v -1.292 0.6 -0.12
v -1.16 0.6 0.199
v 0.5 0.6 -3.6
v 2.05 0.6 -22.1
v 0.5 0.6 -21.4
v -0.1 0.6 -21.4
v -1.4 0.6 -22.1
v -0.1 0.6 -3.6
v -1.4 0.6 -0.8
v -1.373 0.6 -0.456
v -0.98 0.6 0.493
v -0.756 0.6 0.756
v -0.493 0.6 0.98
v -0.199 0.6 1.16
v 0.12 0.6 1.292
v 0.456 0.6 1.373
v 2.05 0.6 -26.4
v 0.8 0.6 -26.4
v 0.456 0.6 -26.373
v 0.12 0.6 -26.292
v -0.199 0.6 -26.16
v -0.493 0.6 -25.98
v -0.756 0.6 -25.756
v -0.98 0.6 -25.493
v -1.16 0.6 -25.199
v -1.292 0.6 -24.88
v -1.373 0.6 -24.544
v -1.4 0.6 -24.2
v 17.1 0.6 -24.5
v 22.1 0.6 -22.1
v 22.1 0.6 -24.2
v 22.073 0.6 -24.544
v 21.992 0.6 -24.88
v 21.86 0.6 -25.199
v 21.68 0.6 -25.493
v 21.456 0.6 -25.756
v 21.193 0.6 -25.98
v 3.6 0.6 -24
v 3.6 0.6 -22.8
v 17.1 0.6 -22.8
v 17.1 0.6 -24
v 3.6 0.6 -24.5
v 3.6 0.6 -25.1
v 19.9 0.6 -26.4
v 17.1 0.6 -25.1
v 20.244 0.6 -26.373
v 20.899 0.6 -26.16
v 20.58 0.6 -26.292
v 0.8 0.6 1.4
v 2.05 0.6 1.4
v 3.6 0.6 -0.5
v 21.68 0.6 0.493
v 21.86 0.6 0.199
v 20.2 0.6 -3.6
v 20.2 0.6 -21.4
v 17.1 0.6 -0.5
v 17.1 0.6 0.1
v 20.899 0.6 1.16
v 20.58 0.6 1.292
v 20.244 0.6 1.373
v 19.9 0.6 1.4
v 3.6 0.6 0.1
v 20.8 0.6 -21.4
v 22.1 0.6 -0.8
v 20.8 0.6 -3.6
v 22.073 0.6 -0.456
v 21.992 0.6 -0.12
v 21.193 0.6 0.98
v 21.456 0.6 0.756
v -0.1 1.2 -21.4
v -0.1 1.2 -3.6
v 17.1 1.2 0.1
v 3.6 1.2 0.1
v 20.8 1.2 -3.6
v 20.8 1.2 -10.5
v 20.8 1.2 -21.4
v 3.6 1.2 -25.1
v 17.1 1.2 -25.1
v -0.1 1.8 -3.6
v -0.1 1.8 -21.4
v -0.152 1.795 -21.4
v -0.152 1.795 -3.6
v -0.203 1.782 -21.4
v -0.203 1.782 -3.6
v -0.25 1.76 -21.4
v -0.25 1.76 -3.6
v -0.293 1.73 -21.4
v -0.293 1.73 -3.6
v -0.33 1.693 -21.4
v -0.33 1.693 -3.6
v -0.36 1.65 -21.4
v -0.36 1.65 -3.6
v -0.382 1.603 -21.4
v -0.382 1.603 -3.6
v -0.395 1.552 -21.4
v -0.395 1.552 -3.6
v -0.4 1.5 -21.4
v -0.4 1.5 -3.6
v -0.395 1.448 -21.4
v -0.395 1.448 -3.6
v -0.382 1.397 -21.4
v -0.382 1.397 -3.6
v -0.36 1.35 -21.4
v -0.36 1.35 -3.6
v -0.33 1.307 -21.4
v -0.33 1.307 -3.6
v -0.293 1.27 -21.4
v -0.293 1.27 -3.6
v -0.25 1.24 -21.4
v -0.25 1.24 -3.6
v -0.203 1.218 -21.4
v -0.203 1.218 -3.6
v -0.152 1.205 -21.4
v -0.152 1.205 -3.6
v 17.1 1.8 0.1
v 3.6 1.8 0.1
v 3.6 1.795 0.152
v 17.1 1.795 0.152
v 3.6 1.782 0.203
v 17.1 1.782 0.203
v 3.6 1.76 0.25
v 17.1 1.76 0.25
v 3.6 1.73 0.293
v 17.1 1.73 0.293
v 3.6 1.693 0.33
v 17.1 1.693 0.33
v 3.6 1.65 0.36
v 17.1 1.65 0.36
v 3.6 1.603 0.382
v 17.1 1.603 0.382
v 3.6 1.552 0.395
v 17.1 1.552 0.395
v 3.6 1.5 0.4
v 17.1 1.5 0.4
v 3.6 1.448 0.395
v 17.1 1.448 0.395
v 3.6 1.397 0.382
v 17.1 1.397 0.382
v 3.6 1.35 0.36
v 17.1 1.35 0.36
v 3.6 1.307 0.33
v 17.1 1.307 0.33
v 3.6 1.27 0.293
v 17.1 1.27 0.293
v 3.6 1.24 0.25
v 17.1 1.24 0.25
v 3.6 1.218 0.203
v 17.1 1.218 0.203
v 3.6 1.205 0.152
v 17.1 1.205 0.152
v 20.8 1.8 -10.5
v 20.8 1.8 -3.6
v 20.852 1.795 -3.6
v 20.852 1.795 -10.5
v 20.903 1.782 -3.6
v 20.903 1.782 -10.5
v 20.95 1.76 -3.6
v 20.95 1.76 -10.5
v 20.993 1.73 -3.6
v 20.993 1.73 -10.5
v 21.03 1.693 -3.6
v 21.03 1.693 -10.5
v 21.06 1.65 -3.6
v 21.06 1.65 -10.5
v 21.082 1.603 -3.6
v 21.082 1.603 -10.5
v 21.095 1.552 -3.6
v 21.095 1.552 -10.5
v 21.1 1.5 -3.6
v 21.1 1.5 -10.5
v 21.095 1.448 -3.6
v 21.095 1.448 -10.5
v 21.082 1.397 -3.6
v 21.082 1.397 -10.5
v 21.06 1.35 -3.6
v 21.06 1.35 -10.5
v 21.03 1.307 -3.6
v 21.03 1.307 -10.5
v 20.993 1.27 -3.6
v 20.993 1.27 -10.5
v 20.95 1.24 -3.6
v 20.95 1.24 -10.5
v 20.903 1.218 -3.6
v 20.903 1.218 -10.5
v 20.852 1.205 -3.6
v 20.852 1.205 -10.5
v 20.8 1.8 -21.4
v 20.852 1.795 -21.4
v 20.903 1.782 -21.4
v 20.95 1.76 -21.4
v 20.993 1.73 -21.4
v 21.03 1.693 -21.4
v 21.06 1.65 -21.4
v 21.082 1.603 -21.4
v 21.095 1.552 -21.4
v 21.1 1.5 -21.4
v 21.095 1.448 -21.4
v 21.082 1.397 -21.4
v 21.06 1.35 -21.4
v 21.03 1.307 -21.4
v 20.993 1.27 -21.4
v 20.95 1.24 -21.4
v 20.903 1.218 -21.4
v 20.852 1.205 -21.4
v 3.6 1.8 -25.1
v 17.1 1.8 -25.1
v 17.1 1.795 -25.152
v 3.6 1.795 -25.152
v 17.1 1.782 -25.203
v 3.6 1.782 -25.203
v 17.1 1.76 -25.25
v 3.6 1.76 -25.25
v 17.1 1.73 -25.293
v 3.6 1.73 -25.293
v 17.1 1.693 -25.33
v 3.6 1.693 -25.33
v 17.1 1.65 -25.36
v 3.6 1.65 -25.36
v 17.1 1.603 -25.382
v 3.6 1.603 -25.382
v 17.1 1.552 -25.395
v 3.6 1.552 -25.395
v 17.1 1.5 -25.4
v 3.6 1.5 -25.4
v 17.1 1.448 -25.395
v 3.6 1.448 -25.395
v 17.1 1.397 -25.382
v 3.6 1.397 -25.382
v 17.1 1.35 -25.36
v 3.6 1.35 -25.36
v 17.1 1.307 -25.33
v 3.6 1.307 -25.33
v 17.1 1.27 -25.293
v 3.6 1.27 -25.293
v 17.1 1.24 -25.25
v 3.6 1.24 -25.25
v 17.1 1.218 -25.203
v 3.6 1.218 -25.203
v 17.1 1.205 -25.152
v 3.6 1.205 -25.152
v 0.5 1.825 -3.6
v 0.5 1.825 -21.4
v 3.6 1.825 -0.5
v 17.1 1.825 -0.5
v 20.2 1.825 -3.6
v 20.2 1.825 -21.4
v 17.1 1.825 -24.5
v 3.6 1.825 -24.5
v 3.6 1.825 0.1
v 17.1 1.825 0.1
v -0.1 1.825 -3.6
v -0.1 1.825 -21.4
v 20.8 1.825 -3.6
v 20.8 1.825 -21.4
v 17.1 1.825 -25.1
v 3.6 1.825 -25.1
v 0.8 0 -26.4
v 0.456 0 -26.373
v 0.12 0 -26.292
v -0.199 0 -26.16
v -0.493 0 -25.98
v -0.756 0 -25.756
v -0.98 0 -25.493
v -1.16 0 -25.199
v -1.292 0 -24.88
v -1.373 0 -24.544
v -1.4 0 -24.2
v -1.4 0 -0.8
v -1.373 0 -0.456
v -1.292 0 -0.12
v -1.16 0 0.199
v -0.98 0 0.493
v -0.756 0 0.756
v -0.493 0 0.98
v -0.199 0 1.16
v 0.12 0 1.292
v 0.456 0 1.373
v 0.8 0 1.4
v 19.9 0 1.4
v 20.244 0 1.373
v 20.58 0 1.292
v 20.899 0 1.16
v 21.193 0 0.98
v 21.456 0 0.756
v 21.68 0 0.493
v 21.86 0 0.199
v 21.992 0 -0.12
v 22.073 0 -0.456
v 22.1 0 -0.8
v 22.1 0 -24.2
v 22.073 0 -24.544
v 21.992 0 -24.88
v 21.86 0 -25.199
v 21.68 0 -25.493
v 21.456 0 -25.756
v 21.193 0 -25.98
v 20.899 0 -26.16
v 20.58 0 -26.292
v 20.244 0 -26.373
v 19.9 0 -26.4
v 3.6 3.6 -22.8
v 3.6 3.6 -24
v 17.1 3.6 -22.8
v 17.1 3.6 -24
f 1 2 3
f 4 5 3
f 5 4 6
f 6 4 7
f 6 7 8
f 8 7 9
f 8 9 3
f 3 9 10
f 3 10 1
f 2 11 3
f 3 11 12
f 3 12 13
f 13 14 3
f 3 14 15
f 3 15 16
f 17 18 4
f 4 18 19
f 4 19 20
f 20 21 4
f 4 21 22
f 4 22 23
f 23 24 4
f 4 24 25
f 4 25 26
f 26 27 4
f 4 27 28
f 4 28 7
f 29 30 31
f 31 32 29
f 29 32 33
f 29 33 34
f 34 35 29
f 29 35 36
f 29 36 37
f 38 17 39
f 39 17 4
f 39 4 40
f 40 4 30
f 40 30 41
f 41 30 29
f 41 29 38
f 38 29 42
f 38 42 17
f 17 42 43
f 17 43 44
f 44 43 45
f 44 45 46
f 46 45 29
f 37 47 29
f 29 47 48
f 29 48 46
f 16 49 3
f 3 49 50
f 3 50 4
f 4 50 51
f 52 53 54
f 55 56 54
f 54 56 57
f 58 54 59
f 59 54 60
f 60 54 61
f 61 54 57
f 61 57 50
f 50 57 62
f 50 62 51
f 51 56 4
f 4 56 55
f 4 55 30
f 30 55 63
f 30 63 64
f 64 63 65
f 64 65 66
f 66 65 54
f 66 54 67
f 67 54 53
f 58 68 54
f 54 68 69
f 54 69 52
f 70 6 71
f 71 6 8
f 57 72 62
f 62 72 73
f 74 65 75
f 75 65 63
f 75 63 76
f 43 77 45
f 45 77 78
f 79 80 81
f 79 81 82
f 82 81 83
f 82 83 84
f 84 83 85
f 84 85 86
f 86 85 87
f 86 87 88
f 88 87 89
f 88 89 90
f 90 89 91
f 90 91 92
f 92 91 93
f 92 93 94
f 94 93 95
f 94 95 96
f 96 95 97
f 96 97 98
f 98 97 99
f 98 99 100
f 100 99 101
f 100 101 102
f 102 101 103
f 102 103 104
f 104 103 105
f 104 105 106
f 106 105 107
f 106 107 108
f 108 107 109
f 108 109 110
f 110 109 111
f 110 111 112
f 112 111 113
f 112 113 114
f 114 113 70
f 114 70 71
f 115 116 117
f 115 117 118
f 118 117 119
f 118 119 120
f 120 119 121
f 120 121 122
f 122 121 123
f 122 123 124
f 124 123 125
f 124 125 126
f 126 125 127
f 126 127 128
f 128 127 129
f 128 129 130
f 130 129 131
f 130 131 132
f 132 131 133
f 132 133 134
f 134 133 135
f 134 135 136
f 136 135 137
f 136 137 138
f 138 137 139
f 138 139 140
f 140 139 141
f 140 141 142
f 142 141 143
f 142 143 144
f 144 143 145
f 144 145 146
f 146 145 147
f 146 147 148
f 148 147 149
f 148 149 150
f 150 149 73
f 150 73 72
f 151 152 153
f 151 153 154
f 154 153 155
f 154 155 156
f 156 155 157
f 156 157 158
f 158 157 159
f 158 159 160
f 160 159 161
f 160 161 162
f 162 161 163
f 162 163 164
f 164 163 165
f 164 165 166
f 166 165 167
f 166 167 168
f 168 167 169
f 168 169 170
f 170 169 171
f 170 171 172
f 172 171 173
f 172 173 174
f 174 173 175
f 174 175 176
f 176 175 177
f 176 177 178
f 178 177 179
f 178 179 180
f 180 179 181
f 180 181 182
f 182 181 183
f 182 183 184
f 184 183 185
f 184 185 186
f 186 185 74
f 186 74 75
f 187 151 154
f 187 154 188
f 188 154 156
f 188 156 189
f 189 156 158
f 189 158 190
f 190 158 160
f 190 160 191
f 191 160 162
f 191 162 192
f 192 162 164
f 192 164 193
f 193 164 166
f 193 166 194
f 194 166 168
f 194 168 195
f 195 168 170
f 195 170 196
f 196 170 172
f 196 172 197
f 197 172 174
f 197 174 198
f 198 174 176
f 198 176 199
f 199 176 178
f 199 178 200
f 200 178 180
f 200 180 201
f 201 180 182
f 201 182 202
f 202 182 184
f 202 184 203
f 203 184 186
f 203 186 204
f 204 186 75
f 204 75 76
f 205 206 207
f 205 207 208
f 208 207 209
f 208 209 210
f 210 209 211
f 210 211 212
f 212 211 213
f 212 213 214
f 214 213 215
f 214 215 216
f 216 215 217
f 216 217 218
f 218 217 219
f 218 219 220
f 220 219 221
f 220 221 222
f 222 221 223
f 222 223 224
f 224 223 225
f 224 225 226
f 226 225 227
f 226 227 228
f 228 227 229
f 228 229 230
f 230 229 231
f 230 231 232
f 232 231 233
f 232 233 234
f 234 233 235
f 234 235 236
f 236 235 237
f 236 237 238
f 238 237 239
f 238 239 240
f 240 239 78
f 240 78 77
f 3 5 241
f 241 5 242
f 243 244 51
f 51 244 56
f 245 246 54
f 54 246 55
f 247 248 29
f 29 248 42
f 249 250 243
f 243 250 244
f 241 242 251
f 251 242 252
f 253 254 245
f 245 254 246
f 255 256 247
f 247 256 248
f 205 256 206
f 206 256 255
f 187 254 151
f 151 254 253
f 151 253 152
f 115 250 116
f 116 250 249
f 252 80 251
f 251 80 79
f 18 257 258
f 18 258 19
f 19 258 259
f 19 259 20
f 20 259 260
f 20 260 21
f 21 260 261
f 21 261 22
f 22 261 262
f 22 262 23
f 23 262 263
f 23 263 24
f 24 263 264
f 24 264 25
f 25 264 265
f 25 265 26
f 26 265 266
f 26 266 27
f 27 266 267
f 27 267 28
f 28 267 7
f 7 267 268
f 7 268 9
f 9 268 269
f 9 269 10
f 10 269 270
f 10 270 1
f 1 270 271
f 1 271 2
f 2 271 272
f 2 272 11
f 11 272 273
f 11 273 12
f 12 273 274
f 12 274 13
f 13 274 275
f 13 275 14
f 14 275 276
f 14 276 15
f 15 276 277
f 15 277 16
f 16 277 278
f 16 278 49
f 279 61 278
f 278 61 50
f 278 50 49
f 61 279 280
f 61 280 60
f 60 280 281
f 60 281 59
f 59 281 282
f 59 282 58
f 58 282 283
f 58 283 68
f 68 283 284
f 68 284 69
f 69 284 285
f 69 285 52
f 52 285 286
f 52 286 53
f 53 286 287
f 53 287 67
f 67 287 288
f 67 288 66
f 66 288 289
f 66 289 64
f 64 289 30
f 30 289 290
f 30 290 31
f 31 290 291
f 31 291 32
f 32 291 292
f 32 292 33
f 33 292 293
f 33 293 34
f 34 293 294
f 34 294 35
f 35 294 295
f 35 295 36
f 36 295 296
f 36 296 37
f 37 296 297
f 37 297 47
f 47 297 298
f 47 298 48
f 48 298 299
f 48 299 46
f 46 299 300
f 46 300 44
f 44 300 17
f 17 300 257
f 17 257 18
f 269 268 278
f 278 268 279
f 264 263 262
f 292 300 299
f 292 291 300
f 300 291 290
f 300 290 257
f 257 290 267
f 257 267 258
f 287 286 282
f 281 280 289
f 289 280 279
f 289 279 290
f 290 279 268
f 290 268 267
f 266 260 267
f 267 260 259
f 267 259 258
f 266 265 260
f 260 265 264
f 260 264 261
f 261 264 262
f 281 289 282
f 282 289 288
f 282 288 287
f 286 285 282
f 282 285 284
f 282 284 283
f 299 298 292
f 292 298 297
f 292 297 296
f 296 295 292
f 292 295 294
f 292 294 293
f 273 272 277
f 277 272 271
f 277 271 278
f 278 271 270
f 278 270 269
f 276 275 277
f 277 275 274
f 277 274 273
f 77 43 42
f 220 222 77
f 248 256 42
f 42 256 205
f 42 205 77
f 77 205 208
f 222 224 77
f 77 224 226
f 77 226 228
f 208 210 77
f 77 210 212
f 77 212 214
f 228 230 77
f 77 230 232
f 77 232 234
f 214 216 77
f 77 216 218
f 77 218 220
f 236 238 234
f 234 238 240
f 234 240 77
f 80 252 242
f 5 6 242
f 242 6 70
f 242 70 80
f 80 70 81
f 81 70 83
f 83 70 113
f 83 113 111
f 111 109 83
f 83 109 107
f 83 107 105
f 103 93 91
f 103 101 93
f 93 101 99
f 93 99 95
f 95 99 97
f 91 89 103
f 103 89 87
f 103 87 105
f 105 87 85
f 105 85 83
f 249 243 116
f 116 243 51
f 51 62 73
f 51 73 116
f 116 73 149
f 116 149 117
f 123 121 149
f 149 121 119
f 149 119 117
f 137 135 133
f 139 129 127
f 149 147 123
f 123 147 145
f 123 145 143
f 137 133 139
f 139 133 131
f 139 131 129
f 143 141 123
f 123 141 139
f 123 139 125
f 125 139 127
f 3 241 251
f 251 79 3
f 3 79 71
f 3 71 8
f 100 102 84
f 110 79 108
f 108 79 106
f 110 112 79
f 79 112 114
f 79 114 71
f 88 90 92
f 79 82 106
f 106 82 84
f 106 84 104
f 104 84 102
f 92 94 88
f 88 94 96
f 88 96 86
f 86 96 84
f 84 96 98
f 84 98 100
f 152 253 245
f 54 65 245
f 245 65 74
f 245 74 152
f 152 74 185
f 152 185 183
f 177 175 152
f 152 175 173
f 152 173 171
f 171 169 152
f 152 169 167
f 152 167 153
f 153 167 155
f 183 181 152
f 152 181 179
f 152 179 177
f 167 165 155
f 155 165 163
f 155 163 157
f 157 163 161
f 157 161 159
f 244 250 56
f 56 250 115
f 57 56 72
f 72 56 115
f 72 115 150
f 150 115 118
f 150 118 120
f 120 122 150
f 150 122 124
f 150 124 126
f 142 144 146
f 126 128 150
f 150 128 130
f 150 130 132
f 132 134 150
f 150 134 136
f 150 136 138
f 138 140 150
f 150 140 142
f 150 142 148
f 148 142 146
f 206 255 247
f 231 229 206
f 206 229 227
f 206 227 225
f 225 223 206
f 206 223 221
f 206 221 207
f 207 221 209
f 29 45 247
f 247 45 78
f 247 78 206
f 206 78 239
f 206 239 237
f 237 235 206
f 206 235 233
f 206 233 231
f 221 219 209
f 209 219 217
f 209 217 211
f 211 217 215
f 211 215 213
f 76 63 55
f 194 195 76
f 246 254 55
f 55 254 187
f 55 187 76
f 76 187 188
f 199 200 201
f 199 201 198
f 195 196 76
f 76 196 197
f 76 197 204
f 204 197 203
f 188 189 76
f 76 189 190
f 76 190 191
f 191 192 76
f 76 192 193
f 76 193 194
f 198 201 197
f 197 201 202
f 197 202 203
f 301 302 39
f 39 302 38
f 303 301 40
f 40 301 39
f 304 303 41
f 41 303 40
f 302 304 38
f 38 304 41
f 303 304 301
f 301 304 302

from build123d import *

# Parameters (mm, degrees)
BOSS_EXTRUDE5_DEPTH = 0.6
BOSS_EXTRUDE6_DEPTH = 1.225
SKETCH15_R          = 0.3
SKETCH17_W          = 5
SKETCH17_H          = 5
CUT_EXTRUDE1_DEPTH  = 10
SKETCH18_W          = 13.5
SKETCH18_H          = 1.2
BOSS_EXTRUDE7_DEPTH = 3


with BuildPart() as part:
    # Sketch1 → Boss-Extrude5 (new body)
    with BuildSketch(Plane(origin=(0, 0, 0), x_dir=(1, 0, 0), z_dir=(0, 1, 0))):
        with BuildLine():
            Line((0.8, 26.4), (19.9, 26.4))
            ThreePointArc((19.9, 26.4), (21.455634919, 25.755634919), (22.1, 24.2))
            Line((22.1, 24.2), (22.1, 0.8))
            ThreePointArc((22.1, 0.8), (21.455634919, -0.755634919), (19.9, -1.4))
            Line((19.9, -1.4), (0.8, -1.4))
            ThreePointArc((0.8, -1.4), (-0.755634919, -0.755634919), (-1.4, 0.8))
            Line((-1.4, 0.8), (-1.4, 24.2))
            ThreePointArc((-1.4, 24.2), (-0.755634919, 25.755634919), (0.8, 26.4))
        make_face()
    extrude(amount=BOSS_EXTRUDE5_DEPTH)

    # Sketch13 → Boss-Extrude6 (add)
    with BuildSketch(Plane(origin=(0, 0.6, 0), x_dir=(1, 0, 0), z_dir=(0, 1, 0))):
        with BuildLine():
            Line((-0.1, 24.2), (-0.1, 0.8))
            ThreePointArc((-0.1, 0.8), (0.163603897, 0.163603897), (0.8, -0.1))
            Line((0.8, -0.1), (19.9, -0.1))
            ThreePointArc((19.9, -0.1), (20.536396103, 0.163603897), (20.8, 0.8))
            Line((20.8, 0.8), (20.8, 24.2))
            ThreePointArc((20.8, 24.2), (20.536396103, 24.836396103), (19.9, 25.1))
            Line((19.9, 25.1), (0.8, 25.1))
            ThreePointArc((0.8, 25.1), (0.163603897, 24.836396103), (-0.1, 24.2))
        make_face()
        with BuildLine():
            Line((19.9, 24.5), (0.8, 24.5))
            ThreePointArc((0.8, 24.5), (0.587867966, 24.412132034), (0.5, 24.2))
            Line((0.5, 24.2), (0.5, 0.8))
            ThreePointArc((0.5, 0.8), (0.587867966, 0.587867966), (0.8, 0.5))
            Line((0.8, 0.5), (19.9, 0.5))
            ThreePointArc((19.9, 0.5), (20.112132034, 0.587867966), (20.2, 0.8))
            Line((20.2, 0.8), (20.2, 24.2))
            ThreePointArc((20.2, 24.2), (20.112132034, 24.412132034), (19.9, 24.5))
        make_face(mode=Mode.SUBTRACT)
    extrude(amount=BOSS_EXTRUDE6_DEPTH)

    # Sweep1: sweep along a path in Sketch16
    with BuildLine(Plane(origin=(0, 1.825, 0), x_dir=(1, 0, 0), z_dir=(0, 1, 0))) as sweep1_path:
        Line((-0.1, 24.2), (-0.1, 0.8))
        ThreePointArc((-0.1, 0.8), (0.163603897, 0.163603897), (0.8, -0.1))
        Line((0.8, -0.1), (19.9, -0.1))
        ThreePointArc((19.9, -0.1), (20.536396103, 0.163603897), (20.8, 0.8))
        Line((20.8, 0.8), (20.8, 24.2))
        ThreePointArc((20.8, 24.2), (20.536396103, 24.836396103), (19.9, 25.1))
        Line((19.9, 25.1), (0.8, 25.1))
        ThreePointArc((0.8, 25.1), (0.163603897, 24.836396103), (-0.1, 24.2))
    # Sketch15 → Sweep1 (sweep)
    with BuildSketch(Plane(origin=(0, 0, -10.5), x_dir=(-1, 0, 0), z_dir=(0, 0, -1))):
        with Locations((-20.8, 1.5)):
            Circle(SKETCH15_R)
    sweep(path=sweep1_path.line)

    # Sketch17 → Cut-Extrude1 (cut)
    with BuildSketch(Plane(origin=(0, 0.6, 0), x_dir=(1, 0, 0), z_dir=(0, 1, 0))):
        with Locations((1.1, 23.9)):
            Rectangle(SKETCH17_W, SKETCH17_H)
        with Locations((19.6, 23.9)):
            Rectangle(SKETCH17_W, SKETCH17_H)
        with Locations((19.6, 1.1)):
            Rectangle(SKETCH17_W, SKETCH17_H)
        with Locations((1.1, 1.1)):
            Rectangle(SKETCH17_W, SKETCH17_H)
    extrude(amount=CUT_EXTRUDE1_DEPTH, mode=Mode.SUBTRACT)

    # Sketch18 → Boss-Extrude7 (add)
    with BuildSketch(Plane(origin=(0, 0.6, 0), x_dir=(1, 0, 0), z_dir=(0, 1, 0))):
        with Locations((10.35, 23.4)):
            Rectangle(SKETCH18_W, SKETCH18_H)
    extrude(amount=BOSS_EXTRUDE7_DEPTH)


solid = part.part
